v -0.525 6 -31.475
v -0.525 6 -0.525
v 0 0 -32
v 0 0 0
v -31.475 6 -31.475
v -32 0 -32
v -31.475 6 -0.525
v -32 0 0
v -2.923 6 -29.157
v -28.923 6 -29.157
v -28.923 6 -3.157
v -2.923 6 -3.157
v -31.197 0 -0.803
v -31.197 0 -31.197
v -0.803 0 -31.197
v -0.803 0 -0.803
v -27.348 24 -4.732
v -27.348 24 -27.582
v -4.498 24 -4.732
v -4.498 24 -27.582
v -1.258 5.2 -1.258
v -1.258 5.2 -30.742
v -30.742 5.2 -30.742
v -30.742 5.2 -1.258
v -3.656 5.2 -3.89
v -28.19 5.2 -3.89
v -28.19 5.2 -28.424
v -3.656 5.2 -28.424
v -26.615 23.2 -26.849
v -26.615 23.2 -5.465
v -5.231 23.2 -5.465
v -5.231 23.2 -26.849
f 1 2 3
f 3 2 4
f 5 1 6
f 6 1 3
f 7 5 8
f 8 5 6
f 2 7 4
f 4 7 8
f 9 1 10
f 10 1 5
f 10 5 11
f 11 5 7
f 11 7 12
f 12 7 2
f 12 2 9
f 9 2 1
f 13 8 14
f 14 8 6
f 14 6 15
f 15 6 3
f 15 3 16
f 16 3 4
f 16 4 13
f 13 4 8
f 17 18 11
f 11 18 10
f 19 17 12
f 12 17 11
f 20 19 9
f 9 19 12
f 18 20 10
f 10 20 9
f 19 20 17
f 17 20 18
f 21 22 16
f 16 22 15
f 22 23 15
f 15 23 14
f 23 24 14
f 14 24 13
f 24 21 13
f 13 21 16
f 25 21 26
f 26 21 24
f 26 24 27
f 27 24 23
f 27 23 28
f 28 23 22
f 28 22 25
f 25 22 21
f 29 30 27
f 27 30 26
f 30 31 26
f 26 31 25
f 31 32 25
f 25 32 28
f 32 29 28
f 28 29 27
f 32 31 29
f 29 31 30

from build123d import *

# Parameters (mm, degrees)
SKETCH1_W           = 32
SKETCH1_H           = 32
BOSS_EXTRUDE1_DEPTH = 6
BOSS_EXTRUDE1_TAPER = 5
SKETCH2_W           = 26
SKETCH2_H           = 26
BOSS_EXTRUDE2_DEPTH = 18
BOSS_EXTRUDE2_TAPER = 5
SHELL1_T            = -0.8


with BuildPart() as part:
    # Sketch1 → Boss-Extrude1 (new body)
    with BuildSketch(Plane(origin=(0, 0, 0), x_dir=(1, 0, 0), z_dir=(0, 1, 0))):
        with Locations((-16, 16)):
            Rectangle(SKETCH1_W, SKETCH1_H)
    extrude(amount=BOSS_EXTRUDE1_DEPTH, taper=BOSS_EXTRUDE1_TAPER)

    # Sketch2 → Boss-Extrude2 (add)
    with BuildSketch(Plane(origin=(0, 6, 0), x_dir=(1, 0, 0), z_dir=(0, 1, 0))):
        with Locations((-15.92307672, 16.156742102)):
            Rectangle(SKETCH2_W, SKETCH2_H)
    extrude(amount=BOSS_EXTRUDE2_DEPTH, taper=BOSS_EXTRUDE2_TAPER)

    # Shell1
    shell1_openings = [part.faces().sort_by_distance(p)[0] for p in [
        (-16, 0, -16),
    ]]
    offset(amount=SHELL1_T, openings=shell1_openings, kind=Kind.INTERSECTION)


solid = part.part
